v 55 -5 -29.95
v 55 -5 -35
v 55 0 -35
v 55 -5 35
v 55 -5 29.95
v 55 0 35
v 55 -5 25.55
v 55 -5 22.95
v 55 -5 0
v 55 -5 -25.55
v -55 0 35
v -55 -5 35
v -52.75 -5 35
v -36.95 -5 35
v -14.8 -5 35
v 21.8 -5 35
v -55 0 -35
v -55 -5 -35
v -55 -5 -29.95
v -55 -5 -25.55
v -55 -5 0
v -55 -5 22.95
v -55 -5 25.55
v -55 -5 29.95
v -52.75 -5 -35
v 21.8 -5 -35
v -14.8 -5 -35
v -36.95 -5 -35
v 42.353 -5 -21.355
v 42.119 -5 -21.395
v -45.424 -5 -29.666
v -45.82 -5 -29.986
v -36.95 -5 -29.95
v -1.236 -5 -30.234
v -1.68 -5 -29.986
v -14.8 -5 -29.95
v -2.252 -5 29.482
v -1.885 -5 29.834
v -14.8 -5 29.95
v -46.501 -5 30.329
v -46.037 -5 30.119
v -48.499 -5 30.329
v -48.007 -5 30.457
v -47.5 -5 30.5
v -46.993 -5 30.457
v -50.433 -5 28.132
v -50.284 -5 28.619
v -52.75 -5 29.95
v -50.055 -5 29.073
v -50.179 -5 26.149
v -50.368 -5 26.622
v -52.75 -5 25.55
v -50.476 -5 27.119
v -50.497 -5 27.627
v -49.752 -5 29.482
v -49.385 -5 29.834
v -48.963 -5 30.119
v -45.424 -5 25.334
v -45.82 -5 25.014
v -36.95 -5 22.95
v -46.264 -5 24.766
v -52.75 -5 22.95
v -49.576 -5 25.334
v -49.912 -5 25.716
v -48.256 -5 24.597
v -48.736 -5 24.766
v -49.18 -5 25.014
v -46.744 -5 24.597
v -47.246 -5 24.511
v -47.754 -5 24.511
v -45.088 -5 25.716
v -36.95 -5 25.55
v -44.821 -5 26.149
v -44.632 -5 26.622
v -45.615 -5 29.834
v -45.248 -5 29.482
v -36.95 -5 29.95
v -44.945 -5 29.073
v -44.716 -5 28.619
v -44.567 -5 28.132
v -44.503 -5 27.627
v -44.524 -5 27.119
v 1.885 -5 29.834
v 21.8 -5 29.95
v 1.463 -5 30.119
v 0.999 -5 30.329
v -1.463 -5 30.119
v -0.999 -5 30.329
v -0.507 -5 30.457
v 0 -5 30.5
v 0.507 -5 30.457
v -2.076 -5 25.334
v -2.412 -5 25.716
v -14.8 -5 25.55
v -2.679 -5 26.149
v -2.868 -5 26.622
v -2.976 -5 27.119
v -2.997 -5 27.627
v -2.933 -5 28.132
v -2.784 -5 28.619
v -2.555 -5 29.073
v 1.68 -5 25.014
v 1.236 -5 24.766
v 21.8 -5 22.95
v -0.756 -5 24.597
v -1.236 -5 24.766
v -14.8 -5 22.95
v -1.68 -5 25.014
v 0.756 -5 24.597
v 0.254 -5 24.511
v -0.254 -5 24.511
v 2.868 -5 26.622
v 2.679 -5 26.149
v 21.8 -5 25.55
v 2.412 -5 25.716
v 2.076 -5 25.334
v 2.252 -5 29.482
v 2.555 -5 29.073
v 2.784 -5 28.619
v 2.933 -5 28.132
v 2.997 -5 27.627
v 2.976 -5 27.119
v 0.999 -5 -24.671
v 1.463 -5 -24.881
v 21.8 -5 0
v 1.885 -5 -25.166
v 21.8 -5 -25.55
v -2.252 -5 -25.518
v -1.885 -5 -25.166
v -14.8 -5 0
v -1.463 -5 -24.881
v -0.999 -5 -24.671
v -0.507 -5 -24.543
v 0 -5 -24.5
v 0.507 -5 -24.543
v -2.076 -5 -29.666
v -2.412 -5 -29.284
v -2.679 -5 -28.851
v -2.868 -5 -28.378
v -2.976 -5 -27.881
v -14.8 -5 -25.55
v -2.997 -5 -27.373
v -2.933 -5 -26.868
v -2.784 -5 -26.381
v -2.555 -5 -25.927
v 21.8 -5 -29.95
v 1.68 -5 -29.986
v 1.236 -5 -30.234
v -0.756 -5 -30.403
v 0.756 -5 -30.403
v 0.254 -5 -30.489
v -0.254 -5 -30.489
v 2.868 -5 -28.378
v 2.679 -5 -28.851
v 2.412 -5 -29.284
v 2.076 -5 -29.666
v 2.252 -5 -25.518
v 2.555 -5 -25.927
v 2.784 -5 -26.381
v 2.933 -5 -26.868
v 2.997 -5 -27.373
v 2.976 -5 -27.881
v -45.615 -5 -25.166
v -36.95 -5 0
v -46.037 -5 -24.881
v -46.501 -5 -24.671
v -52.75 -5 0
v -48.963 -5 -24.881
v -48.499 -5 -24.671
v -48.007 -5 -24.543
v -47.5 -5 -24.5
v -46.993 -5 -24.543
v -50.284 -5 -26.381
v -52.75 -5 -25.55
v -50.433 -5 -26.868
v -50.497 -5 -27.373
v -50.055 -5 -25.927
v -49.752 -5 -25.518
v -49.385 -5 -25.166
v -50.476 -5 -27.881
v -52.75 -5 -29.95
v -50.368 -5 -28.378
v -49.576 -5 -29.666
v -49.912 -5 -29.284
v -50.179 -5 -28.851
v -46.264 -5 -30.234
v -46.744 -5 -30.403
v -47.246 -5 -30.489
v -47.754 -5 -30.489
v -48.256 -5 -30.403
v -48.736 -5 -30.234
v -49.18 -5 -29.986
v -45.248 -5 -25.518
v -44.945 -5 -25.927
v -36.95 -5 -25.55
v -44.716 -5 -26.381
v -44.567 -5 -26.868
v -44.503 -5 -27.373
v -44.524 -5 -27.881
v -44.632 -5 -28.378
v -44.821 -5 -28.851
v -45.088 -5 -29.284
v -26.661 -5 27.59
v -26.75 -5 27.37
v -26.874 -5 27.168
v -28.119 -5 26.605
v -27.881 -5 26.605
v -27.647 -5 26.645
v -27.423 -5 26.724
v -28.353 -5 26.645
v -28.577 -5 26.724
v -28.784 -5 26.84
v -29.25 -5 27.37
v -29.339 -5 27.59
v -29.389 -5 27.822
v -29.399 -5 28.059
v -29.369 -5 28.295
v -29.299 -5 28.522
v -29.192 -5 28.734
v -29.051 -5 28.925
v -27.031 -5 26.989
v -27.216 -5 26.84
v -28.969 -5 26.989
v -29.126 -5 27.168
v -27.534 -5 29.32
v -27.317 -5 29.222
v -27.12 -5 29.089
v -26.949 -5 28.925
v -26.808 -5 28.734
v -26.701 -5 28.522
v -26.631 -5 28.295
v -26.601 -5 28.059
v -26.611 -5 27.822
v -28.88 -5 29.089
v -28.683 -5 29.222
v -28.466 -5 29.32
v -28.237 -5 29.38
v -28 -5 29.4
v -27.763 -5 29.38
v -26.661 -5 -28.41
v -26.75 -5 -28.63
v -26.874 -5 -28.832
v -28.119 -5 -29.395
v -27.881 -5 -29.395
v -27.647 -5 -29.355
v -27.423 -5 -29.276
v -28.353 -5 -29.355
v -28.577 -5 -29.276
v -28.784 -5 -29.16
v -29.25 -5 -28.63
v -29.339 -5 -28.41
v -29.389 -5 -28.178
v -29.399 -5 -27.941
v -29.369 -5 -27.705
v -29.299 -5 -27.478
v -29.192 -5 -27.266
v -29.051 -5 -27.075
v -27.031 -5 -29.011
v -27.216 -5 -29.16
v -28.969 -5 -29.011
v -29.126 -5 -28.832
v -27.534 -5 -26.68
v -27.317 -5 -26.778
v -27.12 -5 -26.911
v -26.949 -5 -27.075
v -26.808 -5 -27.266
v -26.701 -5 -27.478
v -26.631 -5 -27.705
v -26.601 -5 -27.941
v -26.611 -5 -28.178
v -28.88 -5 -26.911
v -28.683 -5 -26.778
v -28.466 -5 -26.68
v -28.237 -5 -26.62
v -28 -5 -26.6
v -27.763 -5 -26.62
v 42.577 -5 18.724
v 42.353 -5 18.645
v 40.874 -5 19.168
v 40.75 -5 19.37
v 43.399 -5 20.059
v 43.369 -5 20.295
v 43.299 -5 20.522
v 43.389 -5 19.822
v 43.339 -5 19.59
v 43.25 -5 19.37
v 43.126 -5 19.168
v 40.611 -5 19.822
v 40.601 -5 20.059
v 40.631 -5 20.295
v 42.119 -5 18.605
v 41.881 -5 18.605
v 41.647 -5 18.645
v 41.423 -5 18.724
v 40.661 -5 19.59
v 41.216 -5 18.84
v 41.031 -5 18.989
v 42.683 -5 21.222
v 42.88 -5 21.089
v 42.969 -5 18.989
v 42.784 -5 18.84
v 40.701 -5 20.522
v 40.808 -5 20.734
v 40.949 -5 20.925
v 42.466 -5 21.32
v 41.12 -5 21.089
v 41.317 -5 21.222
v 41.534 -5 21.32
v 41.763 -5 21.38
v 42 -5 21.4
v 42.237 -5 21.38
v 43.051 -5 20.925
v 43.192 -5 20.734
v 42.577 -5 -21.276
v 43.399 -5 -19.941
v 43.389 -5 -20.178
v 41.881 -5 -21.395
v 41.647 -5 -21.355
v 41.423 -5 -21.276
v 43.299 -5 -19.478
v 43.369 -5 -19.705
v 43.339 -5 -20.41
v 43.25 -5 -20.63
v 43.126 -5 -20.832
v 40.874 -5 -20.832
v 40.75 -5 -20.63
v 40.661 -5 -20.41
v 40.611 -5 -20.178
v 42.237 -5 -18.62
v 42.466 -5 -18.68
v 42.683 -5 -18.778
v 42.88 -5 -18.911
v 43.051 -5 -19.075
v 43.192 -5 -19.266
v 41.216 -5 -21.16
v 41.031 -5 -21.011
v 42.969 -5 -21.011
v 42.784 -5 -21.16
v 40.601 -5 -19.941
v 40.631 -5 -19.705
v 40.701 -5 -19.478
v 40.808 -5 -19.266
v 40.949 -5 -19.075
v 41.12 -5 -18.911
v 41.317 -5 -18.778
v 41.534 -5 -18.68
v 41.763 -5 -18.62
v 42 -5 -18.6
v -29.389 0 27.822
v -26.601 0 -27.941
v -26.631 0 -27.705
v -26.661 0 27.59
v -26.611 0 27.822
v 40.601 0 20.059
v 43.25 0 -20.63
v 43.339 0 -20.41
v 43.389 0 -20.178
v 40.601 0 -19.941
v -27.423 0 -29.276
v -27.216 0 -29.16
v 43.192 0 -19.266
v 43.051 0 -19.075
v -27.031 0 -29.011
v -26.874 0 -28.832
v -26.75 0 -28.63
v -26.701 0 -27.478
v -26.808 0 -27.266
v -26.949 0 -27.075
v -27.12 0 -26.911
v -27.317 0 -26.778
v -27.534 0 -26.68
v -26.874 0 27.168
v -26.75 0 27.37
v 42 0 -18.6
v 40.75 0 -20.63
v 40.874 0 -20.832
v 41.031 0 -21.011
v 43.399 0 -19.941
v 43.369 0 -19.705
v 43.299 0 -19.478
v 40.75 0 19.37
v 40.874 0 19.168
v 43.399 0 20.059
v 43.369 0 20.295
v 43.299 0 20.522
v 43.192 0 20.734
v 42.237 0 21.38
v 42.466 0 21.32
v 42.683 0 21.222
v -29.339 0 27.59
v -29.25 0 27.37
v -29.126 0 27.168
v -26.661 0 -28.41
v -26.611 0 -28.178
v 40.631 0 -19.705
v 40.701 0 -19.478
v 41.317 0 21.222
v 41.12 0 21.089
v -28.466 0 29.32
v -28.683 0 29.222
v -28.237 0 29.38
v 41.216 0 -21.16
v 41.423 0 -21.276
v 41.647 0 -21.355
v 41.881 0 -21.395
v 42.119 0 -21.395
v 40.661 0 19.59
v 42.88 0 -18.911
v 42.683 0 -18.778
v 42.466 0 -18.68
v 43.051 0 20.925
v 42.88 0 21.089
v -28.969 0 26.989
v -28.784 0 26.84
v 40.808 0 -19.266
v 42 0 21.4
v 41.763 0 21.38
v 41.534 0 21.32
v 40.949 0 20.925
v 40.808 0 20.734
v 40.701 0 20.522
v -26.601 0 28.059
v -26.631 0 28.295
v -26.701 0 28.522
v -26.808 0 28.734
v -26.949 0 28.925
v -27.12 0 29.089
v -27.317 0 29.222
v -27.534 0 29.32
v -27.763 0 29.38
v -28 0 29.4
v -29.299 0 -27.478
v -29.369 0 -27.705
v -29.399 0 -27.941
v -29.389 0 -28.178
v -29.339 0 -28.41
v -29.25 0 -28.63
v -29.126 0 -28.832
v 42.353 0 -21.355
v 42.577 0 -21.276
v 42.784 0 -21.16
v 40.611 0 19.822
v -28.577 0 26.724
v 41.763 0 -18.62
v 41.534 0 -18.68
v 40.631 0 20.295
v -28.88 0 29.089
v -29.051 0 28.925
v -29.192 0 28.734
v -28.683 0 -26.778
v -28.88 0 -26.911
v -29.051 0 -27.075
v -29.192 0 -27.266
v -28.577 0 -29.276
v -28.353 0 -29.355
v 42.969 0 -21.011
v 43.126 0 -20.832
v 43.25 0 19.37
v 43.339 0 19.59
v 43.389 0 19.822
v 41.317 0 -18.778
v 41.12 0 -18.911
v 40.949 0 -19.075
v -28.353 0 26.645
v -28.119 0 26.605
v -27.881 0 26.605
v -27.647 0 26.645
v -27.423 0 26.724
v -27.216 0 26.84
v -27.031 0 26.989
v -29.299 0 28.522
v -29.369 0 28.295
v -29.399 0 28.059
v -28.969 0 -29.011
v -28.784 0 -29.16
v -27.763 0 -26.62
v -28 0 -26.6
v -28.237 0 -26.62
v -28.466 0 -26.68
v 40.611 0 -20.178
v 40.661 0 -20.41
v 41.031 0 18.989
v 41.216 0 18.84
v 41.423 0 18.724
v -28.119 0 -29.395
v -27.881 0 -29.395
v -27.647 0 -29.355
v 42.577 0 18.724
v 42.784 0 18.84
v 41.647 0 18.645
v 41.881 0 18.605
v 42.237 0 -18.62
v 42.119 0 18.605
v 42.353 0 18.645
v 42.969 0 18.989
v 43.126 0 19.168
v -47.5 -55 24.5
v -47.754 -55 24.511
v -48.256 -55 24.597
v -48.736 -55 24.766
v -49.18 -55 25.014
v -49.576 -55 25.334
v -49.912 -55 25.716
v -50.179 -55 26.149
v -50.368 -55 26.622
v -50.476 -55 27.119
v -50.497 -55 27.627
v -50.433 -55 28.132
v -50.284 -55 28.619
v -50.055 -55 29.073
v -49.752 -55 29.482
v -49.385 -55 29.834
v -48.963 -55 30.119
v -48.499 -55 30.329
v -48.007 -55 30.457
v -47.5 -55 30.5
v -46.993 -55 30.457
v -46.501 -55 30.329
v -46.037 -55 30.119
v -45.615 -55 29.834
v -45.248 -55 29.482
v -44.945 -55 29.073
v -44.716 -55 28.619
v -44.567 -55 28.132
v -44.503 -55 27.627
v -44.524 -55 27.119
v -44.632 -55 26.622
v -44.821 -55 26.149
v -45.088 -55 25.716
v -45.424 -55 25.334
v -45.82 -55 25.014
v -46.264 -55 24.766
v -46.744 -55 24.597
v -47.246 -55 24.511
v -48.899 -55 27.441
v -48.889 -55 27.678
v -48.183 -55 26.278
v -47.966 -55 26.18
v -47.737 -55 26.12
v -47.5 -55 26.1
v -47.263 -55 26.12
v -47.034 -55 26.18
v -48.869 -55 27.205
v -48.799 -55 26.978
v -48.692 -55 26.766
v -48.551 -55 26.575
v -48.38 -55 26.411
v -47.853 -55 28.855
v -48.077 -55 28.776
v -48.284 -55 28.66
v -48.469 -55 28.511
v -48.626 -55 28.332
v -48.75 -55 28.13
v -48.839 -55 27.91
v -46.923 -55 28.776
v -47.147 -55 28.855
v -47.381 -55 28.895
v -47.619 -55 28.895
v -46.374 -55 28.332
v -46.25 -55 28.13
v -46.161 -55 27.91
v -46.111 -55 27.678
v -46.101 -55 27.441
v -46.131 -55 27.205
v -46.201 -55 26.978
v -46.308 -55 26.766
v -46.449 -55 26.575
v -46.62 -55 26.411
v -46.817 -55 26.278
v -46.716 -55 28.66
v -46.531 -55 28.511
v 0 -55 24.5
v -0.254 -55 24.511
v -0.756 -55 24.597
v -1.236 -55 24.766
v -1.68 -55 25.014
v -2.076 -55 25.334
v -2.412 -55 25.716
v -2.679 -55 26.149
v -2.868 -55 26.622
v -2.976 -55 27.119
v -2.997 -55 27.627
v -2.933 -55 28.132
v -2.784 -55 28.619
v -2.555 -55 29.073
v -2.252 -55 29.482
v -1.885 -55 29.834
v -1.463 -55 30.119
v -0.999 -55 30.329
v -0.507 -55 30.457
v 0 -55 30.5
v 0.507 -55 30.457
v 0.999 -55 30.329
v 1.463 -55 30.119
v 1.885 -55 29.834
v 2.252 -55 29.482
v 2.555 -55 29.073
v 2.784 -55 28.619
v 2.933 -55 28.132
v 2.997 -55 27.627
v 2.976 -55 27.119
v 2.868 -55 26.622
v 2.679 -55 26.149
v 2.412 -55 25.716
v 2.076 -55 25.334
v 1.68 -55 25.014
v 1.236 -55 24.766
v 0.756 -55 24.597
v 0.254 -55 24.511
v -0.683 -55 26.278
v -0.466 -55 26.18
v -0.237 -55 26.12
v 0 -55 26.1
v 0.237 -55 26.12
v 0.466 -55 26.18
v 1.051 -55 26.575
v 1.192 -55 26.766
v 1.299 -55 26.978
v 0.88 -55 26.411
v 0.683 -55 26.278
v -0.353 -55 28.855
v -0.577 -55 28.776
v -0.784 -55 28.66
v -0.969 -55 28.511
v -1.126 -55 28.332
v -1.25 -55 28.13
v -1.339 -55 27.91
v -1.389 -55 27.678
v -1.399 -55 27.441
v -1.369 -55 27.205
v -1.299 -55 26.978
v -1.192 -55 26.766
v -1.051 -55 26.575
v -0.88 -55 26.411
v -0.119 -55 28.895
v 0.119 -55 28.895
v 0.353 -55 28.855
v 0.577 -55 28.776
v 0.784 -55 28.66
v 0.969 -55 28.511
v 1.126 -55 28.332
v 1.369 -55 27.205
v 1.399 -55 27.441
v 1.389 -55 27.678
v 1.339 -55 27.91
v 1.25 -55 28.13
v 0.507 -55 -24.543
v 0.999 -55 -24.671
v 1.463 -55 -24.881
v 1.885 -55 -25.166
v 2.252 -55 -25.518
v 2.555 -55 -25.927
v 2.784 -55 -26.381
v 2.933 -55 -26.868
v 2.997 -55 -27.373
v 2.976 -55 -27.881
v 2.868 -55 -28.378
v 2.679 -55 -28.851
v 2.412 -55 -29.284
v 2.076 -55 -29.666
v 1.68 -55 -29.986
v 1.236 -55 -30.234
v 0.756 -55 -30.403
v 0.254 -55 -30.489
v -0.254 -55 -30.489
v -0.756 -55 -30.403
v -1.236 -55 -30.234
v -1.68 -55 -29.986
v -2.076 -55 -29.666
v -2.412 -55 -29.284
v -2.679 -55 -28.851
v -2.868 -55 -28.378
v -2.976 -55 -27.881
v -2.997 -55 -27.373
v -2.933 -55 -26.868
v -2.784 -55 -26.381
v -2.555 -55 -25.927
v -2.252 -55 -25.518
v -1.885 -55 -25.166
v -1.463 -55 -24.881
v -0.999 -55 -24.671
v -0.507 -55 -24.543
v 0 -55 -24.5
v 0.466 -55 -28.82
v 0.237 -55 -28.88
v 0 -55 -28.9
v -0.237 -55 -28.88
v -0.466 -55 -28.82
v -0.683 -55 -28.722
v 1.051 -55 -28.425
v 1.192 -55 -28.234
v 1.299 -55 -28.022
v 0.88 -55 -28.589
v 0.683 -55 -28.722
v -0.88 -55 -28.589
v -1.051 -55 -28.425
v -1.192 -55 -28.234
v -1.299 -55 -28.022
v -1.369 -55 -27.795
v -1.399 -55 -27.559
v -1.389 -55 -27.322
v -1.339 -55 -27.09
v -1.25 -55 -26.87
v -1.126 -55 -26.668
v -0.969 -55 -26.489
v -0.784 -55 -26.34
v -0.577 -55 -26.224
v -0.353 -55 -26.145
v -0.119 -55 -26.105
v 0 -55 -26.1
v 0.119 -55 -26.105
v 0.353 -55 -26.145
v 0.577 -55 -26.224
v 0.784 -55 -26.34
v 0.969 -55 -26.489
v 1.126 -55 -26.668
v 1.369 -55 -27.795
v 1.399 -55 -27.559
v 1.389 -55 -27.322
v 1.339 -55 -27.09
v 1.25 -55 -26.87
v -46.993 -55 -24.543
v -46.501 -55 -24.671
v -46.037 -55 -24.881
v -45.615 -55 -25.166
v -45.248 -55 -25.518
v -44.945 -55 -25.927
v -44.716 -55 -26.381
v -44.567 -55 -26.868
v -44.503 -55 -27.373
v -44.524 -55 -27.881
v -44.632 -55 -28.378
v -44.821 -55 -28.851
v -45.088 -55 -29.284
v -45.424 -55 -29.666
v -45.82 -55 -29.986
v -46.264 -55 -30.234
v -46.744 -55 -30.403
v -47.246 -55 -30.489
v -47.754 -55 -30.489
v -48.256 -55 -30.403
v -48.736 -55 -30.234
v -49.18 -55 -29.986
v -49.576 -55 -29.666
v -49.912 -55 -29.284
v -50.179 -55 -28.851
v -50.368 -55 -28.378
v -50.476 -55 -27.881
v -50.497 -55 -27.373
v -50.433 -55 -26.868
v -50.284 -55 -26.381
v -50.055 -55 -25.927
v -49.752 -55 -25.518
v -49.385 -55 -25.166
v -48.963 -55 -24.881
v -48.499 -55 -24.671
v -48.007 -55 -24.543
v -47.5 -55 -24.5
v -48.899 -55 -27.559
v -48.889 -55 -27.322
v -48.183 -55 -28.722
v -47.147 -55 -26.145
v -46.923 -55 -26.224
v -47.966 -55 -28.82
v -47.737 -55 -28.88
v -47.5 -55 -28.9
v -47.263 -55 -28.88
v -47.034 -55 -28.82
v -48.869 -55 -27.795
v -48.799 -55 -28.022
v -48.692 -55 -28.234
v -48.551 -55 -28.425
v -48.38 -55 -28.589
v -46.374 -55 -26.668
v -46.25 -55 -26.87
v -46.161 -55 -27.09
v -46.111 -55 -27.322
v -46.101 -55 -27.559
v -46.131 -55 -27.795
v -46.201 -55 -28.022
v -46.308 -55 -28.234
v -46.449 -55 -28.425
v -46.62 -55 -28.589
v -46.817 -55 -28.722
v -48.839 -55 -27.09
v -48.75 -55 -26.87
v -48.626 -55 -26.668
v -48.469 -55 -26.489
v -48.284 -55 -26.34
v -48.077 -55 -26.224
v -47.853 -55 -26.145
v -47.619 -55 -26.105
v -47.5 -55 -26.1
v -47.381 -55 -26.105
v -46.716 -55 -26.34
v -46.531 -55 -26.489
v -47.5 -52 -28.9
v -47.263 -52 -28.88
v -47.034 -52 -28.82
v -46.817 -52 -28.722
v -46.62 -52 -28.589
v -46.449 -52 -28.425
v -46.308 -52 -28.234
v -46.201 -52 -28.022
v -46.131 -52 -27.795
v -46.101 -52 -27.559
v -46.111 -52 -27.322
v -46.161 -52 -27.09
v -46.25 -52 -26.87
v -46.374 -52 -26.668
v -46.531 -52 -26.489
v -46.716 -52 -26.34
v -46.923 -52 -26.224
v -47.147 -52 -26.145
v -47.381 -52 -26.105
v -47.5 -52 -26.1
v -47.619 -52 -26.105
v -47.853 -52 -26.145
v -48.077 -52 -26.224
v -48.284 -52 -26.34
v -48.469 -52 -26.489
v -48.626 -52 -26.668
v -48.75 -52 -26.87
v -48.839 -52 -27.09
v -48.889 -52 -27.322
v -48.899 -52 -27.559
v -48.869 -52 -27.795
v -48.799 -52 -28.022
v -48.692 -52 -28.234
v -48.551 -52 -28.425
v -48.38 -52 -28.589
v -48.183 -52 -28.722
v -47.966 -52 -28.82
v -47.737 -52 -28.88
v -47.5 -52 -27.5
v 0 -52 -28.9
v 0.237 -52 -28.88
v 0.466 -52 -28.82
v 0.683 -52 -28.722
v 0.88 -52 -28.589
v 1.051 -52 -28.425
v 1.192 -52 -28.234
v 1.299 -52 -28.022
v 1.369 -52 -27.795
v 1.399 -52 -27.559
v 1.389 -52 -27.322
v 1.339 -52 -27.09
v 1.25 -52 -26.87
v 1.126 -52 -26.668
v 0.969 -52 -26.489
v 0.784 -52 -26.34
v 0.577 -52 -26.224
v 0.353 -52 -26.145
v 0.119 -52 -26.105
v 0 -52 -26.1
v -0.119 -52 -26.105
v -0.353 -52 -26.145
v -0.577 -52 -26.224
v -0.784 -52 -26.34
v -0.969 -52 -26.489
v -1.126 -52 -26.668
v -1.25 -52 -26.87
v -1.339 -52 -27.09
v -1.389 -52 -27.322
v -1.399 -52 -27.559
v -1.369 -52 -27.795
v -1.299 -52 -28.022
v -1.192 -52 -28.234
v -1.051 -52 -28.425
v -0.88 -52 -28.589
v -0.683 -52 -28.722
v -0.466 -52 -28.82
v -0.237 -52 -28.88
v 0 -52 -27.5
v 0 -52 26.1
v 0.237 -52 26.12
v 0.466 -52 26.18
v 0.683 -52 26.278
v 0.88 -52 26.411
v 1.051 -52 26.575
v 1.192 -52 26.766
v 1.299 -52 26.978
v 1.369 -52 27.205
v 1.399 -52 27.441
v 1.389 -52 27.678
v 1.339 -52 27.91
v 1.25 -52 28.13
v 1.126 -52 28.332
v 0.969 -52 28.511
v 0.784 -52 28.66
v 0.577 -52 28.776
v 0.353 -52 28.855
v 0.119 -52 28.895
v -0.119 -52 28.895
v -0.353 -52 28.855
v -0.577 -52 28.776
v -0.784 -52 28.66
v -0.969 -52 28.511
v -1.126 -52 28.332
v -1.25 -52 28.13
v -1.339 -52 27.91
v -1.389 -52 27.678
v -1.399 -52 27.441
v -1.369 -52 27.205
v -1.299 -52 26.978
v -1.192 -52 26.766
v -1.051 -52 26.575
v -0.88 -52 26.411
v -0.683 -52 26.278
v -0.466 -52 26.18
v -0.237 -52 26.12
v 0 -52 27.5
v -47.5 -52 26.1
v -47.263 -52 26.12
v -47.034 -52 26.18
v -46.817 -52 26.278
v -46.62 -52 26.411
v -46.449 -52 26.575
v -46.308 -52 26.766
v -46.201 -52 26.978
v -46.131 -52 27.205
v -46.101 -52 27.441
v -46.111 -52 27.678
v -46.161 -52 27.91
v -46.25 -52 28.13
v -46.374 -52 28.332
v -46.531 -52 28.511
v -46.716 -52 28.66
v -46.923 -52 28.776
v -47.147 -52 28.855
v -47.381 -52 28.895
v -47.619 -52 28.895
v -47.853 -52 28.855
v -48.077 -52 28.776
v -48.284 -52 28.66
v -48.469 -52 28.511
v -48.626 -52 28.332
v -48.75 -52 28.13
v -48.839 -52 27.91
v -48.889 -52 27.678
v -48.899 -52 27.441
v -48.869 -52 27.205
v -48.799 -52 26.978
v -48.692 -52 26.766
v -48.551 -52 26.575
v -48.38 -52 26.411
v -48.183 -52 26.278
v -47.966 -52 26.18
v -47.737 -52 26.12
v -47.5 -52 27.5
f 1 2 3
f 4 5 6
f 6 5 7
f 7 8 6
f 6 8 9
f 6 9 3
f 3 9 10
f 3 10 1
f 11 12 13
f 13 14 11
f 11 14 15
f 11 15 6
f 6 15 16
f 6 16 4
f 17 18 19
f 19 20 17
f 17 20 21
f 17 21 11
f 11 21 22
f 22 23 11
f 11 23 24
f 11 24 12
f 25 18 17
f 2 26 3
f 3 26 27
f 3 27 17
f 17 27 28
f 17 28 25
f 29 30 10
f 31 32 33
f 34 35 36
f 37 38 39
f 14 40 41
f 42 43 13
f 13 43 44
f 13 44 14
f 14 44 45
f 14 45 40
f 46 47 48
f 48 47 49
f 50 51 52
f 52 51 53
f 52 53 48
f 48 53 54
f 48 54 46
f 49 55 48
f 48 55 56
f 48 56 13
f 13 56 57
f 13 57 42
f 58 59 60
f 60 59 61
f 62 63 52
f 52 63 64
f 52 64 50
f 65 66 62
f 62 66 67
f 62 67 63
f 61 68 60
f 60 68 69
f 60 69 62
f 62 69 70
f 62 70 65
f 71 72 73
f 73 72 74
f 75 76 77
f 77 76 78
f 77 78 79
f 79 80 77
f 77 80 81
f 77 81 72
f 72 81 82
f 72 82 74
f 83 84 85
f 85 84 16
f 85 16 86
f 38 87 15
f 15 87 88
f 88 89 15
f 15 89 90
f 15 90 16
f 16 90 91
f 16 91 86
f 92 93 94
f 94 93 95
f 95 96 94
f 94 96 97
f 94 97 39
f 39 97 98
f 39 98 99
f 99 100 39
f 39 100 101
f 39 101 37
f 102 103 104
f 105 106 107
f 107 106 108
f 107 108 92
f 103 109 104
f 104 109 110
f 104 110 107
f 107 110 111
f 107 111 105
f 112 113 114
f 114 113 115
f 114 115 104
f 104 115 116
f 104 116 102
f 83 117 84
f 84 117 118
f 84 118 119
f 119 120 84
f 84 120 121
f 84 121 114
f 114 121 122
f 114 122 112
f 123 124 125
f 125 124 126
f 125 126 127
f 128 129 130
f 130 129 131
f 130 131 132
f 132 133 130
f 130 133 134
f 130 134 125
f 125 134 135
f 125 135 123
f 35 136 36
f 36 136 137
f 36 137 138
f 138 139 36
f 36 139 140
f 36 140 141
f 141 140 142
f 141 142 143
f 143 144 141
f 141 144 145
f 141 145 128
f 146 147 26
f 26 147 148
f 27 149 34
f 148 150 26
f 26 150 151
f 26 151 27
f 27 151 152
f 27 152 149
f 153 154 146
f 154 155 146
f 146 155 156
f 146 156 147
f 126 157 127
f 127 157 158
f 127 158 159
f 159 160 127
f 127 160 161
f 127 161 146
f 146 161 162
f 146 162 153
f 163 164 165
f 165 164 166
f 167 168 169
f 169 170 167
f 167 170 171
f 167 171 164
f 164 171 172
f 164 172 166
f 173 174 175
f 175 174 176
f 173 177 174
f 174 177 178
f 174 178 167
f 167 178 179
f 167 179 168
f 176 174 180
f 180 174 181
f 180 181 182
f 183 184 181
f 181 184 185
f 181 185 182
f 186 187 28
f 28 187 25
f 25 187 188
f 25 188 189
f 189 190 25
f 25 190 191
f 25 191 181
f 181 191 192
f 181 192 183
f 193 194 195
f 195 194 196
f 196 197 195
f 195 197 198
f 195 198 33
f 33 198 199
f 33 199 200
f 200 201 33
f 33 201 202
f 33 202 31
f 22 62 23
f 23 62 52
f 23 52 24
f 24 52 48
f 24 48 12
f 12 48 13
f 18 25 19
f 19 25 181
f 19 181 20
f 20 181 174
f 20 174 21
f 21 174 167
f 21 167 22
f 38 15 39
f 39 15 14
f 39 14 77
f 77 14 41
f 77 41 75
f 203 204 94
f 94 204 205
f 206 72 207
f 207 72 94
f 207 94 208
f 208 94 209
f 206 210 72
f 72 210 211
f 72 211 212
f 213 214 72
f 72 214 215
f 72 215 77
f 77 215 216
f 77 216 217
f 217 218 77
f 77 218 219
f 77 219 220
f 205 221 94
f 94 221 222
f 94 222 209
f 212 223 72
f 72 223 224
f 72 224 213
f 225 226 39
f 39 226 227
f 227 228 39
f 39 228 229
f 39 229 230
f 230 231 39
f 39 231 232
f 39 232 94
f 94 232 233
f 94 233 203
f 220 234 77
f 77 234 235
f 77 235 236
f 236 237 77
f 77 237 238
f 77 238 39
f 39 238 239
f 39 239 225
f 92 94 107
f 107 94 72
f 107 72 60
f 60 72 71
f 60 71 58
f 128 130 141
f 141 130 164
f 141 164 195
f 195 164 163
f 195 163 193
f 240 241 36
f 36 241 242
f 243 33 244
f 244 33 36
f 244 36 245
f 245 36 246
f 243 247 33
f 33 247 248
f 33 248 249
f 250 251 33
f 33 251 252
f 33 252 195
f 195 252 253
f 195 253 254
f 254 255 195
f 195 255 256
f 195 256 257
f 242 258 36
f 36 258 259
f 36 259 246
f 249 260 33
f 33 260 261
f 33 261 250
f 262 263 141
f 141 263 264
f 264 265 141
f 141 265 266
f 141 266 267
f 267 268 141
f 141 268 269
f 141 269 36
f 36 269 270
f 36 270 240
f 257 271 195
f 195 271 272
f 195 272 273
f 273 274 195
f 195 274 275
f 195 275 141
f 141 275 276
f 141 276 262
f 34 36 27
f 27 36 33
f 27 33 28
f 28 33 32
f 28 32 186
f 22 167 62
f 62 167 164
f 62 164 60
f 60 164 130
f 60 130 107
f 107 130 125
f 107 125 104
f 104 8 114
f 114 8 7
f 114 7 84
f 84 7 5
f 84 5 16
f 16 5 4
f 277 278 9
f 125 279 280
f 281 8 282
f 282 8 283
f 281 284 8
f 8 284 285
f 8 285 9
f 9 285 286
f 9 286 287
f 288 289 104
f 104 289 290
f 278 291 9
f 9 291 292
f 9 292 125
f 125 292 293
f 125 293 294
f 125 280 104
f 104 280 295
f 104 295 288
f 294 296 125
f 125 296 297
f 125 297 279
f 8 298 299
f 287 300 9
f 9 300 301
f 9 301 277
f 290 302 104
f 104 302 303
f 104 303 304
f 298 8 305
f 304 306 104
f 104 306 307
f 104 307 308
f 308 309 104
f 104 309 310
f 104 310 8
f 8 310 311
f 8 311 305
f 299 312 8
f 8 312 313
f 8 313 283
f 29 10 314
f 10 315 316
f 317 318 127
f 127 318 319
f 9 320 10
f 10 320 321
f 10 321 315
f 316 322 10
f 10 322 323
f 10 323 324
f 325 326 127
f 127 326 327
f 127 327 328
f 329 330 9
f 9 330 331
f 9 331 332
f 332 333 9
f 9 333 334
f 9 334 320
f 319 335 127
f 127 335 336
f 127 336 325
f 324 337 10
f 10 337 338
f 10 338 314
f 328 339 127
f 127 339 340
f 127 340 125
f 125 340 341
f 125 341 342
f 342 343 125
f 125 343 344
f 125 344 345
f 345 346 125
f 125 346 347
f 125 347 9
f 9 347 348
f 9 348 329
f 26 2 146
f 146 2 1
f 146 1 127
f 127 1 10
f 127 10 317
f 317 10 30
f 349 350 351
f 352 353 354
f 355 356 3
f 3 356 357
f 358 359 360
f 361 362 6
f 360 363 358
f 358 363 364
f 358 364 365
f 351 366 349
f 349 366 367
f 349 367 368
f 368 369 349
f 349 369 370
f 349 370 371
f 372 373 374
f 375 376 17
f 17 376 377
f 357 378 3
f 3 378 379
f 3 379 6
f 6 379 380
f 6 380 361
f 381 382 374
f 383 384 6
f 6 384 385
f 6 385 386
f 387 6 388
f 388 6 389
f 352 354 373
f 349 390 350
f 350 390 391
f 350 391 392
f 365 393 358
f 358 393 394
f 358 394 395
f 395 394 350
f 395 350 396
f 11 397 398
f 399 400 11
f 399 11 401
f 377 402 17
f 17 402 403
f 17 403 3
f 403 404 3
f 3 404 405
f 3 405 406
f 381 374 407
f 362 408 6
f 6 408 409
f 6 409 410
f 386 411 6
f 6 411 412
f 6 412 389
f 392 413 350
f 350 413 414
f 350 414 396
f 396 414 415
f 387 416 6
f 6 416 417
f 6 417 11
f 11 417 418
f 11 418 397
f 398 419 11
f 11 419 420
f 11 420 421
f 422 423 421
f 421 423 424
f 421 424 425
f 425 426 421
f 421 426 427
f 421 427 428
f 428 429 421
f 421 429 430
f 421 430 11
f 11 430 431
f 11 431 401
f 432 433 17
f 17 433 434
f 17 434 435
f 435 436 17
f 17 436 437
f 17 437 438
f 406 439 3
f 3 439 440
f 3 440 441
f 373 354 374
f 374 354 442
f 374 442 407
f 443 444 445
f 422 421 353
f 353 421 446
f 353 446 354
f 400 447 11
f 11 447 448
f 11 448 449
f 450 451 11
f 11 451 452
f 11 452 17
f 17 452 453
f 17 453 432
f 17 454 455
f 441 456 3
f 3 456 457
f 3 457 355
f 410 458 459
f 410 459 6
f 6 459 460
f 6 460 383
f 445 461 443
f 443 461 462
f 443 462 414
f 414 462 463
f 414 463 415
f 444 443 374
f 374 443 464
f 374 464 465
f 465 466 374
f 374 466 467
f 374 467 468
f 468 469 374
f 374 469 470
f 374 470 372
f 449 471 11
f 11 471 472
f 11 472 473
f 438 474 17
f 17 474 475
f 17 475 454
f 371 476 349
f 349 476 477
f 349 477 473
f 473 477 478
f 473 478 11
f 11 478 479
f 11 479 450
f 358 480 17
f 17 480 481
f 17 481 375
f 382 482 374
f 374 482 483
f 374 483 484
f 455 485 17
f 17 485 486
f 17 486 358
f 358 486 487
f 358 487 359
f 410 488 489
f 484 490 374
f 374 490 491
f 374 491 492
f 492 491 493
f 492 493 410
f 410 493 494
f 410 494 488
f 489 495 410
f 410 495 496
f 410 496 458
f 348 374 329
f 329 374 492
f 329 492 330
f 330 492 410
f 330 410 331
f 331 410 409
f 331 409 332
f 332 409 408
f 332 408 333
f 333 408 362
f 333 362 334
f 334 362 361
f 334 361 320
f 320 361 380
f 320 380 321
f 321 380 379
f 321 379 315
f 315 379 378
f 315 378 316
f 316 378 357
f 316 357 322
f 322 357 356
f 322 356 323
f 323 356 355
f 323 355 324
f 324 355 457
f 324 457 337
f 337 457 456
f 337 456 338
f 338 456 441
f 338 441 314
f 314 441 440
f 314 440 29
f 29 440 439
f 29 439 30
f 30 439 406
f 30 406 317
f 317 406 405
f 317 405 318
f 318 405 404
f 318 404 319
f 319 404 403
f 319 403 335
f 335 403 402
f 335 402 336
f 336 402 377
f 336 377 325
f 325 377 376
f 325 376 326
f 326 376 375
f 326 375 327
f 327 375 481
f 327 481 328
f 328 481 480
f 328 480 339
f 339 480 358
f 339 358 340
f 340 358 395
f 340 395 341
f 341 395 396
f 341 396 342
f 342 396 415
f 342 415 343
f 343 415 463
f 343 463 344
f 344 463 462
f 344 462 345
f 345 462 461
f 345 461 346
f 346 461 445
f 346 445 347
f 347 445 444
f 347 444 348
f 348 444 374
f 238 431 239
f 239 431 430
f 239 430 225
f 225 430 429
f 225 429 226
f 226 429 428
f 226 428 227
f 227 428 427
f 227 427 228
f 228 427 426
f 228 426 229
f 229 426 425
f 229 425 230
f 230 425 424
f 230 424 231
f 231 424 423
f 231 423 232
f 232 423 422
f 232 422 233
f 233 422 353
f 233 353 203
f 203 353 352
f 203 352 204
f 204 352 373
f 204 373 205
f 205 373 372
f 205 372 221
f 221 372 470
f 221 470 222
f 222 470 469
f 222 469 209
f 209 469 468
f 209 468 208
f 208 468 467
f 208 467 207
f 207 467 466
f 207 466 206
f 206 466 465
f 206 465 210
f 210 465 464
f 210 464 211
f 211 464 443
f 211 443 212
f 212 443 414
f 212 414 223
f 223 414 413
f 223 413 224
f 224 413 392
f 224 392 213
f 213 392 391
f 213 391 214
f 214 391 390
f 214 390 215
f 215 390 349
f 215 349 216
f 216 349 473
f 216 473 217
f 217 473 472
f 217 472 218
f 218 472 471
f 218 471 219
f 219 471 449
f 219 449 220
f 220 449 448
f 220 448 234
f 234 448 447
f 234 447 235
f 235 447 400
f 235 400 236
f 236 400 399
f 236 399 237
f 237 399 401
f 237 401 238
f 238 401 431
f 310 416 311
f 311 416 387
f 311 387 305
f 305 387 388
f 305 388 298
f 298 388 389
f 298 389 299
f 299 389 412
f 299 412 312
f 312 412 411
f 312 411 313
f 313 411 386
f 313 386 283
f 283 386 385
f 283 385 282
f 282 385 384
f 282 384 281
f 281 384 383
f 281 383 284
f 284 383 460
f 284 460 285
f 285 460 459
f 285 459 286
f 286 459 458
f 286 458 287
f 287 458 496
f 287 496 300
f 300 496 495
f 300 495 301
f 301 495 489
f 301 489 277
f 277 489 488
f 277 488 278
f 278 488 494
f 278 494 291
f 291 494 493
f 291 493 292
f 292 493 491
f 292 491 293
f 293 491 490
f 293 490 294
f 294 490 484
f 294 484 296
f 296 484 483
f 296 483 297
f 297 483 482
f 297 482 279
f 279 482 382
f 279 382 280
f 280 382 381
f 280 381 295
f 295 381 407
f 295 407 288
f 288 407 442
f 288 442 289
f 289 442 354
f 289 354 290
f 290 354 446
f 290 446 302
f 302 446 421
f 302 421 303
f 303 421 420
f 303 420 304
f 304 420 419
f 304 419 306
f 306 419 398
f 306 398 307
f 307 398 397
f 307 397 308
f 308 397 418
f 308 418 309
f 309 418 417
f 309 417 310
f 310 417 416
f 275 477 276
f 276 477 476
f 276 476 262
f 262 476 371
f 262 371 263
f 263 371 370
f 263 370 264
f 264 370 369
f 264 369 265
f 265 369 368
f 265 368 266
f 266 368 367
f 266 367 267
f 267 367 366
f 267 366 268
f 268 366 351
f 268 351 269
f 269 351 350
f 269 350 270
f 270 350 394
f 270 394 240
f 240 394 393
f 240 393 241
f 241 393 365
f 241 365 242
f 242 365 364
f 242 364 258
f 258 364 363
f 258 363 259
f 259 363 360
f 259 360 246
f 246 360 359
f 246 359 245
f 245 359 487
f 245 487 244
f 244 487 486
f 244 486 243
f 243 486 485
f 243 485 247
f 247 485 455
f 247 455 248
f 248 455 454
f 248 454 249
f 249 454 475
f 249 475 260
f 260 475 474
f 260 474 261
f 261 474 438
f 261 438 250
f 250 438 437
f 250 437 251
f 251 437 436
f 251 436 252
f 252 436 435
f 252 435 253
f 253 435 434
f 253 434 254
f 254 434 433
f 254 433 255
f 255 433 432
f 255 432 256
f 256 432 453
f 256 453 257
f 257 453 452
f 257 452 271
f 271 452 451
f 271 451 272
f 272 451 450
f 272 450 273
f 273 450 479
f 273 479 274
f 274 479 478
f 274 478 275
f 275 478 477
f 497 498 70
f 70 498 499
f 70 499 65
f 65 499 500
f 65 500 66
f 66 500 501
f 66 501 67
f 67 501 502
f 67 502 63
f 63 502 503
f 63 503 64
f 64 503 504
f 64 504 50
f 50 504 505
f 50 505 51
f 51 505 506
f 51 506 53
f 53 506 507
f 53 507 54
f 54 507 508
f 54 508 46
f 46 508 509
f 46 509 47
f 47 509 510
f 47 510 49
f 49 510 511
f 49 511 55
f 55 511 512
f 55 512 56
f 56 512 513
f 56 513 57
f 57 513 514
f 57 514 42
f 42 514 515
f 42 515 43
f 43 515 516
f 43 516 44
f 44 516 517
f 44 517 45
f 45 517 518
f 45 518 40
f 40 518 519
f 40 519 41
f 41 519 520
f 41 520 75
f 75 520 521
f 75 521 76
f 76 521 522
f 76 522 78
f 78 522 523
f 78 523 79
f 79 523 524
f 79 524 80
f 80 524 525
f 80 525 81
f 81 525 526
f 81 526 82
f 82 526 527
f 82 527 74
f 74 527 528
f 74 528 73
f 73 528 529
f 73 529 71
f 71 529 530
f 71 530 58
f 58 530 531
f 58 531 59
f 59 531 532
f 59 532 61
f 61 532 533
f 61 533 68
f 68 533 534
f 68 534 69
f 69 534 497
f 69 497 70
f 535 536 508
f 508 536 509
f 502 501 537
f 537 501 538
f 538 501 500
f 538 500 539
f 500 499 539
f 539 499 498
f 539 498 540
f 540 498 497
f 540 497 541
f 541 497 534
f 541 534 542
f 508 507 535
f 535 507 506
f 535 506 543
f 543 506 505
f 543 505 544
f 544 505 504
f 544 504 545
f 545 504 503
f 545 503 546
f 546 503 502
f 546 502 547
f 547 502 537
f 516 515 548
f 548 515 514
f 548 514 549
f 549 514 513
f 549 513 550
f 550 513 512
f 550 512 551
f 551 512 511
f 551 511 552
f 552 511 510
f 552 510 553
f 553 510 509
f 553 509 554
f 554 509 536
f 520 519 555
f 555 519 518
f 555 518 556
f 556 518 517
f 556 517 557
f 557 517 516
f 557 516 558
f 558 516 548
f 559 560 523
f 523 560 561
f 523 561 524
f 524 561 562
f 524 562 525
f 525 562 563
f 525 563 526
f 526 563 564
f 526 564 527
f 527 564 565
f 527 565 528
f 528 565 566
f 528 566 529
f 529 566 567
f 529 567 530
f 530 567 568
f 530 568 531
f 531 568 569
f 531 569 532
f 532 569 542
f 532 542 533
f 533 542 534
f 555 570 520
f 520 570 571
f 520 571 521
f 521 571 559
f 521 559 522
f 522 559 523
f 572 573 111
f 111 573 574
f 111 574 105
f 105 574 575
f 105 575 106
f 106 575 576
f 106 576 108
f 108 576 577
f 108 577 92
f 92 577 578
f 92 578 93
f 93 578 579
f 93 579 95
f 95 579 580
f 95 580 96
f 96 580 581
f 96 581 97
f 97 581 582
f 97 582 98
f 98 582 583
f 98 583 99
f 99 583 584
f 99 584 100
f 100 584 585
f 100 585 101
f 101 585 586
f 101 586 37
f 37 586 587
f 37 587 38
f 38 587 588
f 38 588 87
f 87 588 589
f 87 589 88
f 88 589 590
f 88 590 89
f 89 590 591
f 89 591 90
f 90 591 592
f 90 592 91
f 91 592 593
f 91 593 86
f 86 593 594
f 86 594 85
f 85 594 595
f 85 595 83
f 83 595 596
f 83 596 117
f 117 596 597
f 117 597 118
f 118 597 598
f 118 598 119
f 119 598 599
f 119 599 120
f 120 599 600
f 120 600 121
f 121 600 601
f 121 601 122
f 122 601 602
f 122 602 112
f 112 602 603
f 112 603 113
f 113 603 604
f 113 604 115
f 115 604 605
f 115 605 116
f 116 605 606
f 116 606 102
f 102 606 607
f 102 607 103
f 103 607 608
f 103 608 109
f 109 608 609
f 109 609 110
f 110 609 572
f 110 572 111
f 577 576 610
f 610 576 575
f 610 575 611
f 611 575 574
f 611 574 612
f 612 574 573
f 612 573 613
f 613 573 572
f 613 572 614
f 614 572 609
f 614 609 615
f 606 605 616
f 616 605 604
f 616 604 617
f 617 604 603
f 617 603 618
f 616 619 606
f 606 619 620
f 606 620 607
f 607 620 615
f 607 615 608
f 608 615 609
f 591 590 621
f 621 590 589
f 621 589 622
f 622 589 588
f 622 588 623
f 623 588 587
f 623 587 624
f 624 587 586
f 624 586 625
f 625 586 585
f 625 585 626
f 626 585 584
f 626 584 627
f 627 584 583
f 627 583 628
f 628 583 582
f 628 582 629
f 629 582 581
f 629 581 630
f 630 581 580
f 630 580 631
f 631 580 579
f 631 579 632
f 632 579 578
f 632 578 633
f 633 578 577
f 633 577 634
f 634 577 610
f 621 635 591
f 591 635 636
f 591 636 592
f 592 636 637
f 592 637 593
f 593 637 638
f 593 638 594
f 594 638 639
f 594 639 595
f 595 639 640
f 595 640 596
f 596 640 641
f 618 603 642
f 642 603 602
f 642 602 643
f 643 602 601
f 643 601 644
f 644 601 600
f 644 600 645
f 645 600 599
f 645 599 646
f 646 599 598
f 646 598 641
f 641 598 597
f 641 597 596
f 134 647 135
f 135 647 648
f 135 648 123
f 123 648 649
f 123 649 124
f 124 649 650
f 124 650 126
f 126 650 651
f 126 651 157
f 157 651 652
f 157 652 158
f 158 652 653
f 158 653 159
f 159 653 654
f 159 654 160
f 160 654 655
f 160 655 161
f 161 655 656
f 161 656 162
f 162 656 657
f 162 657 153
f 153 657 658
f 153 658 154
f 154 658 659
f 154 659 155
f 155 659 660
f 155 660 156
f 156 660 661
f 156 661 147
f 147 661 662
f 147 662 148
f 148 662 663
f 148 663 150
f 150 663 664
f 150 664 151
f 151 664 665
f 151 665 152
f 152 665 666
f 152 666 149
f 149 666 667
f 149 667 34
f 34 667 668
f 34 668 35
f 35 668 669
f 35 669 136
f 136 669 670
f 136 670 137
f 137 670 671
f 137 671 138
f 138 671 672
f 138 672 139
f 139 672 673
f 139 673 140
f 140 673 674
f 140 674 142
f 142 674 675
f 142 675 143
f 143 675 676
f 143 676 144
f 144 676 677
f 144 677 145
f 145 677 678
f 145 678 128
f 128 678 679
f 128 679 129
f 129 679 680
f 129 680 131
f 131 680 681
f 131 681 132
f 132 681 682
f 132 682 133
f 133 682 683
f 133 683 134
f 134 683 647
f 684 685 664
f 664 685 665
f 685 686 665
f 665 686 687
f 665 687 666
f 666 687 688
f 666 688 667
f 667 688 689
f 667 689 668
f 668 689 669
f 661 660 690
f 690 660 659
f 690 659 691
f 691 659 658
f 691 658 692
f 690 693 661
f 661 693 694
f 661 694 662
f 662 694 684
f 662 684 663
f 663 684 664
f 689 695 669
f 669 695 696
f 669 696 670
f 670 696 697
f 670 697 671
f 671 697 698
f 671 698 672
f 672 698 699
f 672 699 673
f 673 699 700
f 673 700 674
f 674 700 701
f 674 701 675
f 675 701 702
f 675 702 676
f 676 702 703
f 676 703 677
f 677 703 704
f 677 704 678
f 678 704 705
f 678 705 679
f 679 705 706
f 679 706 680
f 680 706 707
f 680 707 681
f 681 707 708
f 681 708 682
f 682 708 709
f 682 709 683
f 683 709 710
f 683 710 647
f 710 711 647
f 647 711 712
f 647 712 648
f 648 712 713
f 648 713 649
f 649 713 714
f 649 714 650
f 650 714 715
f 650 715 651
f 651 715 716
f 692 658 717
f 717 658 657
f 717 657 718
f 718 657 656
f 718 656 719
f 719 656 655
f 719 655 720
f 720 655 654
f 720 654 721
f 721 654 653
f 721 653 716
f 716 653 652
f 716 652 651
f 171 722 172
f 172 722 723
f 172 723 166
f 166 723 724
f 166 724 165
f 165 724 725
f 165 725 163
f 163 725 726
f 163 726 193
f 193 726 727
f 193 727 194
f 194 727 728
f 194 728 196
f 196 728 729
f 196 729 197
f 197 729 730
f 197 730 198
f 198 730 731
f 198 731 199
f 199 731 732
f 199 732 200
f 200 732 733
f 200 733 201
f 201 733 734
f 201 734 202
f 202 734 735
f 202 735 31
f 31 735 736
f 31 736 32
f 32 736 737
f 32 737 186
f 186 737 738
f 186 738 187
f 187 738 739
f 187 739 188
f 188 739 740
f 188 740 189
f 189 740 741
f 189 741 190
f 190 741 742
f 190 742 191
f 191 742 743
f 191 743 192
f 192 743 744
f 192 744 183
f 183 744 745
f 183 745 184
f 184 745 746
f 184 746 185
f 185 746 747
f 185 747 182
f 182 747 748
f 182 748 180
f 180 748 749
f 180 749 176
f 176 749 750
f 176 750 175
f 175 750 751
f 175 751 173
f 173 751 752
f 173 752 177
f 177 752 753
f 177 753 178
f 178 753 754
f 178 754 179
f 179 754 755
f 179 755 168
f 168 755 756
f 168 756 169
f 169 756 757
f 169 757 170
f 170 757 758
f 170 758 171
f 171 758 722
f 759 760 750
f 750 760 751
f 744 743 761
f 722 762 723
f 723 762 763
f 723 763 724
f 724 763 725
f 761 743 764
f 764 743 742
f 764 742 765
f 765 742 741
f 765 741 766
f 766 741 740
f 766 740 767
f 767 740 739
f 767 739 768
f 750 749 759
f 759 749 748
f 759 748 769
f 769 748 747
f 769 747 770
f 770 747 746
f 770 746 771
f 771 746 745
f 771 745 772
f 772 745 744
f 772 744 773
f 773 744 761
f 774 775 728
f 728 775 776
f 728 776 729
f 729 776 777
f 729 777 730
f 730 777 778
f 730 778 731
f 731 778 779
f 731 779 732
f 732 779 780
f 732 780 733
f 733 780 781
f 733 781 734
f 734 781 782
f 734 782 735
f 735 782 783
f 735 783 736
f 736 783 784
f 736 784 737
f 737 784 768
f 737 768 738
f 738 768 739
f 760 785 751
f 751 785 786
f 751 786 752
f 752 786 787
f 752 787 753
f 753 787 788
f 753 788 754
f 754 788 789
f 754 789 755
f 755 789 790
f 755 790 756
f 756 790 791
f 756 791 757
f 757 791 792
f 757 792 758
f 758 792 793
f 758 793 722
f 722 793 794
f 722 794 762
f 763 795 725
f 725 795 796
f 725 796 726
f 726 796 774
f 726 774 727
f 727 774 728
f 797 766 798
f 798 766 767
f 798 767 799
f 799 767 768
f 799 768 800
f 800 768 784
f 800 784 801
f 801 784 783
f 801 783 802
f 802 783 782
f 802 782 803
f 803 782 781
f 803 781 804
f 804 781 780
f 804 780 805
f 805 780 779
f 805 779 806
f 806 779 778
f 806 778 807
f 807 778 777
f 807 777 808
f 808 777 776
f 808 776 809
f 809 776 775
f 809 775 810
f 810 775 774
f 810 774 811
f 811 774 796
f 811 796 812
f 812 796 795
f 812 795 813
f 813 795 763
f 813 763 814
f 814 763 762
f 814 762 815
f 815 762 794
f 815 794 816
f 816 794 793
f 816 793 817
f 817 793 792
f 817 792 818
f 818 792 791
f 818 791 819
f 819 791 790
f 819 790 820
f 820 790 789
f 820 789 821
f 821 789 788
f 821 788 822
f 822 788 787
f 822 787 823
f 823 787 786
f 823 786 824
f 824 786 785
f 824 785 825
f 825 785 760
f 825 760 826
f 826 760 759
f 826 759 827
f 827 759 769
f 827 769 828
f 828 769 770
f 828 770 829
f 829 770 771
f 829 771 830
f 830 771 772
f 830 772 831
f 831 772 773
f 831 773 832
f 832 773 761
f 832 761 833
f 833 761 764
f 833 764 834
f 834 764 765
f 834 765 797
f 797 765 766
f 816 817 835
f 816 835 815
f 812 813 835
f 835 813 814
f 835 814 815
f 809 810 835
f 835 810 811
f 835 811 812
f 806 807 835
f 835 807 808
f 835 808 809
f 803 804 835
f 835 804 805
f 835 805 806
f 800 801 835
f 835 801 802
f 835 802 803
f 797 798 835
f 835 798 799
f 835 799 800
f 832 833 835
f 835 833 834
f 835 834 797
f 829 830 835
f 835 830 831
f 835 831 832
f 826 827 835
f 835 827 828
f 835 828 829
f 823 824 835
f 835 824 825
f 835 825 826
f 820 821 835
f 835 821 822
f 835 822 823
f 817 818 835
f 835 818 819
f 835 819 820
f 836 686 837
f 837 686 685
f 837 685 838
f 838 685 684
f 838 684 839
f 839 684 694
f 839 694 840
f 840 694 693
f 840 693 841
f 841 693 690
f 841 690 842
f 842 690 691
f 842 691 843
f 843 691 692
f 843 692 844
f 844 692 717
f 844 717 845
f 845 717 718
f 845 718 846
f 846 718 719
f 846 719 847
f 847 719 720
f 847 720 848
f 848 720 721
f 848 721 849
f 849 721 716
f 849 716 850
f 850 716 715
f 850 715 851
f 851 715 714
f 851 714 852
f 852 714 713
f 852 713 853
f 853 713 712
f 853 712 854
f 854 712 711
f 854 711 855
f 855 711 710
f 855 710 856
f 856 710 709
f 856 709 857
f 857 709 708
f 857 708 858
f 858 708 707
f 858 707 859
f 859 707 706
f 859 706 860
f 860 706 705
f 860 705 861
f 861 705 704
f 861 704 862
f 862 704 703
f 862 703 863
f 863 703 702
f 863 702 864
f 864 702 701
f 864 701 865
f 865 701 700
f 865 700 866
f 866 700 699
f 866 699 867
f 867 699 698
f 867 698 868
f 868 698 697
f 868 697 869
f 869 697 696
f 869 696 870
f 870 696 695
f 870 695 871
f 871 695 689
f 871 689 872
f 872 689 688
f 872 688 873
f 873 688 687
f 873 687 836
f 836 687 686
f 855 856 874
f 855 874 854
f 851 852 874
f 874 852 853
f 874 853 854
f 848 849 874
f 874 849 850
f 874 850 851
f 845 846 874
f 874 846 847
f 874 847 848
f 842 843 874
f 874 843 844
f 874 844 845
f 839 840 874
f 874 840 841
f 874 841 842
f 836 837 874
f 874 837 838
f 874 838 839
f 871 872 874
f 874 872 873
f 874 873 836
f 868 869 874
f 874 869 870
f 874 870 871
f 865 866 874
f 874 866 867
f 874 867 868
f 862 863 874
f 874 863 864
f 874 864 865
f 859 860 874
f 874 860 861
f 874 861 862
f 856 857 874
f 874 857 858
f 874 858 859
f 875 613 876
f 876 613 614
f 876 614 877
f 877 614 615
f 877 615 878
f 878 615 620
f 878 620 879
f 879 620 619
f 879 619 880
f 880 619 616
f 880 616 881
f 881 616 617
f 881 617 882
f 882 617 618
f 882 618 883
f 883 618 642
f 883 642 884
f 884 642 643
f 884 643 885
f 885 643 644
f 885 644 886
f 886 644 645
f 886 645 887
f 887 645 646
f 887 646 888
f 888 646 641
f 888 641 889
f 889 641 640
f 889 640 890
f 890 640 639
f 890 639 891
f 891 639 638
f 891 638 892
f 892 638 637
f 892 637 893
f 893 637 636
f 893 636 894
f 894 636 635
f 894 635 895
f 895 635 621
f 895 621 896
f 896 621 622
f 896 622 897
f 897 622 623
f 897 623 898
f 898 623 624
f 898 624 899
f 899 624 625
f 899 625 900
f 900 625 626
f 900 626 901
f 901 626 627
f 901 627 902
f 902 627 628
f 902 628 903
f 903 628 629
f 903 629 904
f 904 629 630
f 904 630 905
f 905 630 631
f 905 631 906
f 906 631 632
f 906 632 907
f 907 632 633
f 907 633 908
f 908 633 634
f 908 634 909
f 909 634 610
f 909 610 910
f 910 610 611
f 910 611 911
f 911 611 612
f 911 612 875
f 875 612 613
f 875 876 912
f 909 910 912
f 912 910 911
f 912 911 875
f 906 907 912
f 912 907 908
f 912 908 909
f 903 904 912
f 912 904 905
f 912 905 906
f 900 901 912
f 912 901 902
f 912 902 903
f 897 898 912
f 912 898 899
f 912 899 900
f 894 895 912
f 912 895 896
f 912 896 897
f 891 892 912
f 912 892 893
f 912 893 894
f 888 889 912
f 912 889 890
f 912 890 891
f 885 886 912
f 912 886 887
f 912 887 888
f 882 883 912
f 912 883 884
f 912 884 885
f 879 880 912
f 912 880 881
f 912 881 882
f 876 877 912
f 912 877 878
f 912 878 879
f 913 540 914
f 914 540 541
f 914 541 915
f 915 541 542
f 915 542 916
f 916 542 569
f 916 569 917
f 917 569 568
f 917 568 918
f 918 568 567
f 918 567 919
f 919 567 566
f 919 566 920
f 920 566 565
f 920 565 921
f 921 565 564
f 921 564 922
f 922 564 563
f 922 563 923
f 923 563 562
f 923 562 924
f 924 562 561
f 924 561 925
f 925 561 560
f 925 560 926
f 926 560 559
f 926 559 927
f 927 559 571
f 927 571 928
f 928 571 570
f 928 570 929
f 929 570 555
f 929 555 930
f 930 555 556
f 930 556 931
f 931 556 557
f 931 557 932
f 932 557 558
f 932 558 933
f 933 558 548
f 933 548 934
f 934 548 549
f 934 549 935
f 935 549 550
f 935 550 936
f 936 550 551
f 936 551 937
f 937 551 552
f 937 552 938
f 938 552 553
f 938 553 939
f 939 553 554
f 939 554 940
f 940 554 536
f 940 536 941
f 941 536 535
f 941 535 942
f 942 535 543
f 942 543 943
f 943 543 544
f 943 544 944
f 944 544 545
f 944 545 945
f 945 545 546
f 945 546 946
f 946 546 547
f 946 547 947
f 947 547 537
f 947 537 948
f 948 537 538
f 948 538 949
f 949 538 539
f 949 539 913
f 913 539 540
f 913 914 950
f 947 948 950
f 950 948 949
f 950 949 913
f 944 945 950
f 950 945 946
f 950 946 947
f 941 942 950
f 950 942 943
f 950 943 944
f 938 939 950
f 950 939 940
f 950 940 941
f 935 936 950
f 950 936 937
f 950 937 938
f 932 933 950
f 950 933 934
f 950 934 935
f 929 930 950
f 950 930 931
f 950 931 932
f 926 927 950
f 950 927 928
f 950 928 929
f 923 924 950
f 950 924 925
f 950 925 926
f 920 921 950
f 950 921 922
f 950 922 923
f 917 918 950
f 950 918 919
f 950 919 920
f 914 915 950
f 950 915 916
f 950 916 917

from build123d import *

# Parameters (mm, degrees)
SKETCH1_W           = 110
SKETCH1_H           = 70
BOSS_EXTRUDE2_DEPTH = 5
SKETCH2_R           = 1.4
CUT_EXTRUDE1_DEPTH  = 5
SKETCH4_R           = 3
BOSS_EXTRUDE3_DEPTH = 50
SKETCH5_R           = 1.4
CUT_EXTRUDE2_DEPTH  = 3


with BuildPart() as part:
    # Sketch1 → Boss-Extrude2 (new body)
    with BuildSketch(Plane(origin=(0, 0, 0), x_dir=(1, 0, 0), z_dir=(0, 1, 0))):
        Rectangle(SKETCH1_W, SKETCH1_H)
    extrude(amount=-BOSS_EXTRUDE2_DEPTH)

    # Sketch2 → Cut-Extrude1 (cut)
    with BuildSketch(Plane(origin=(0, 0, 0), x_dir=(1, 0, 0), z_dir=(0, 1, 0))):
        with Locations(Location((-28, 28, 0), (0, 0, 270))):
            Circle(SKETCH2_R)
        with Locations(Location((42, 20, 0), (0, 0, 270))):
            Circle(SKETCH2_R)
        with Locations(Location((-28, -28, 0), (0, 0, 270))):
            Circle(SKETCH2_R)
        with Locations(Location((42, -20, 0), (0, 0, 270))):
            Circle(SKETCH2_R)
    extrude(amount=-CUT_EXTRUDE1_DEPTH, mode=Mode.SUBTRACT)

    # Sketch4 → Boss-Extrude3 (add)
    with BuildSketch(Plane.XZ.offset(5)):
        with Locations(Location((-47.5, 27.5, 0), (0, 0, 90))):
            Circle(SKETCH4_R)
        with Locations(Location((0, 27.5, 0), (0, 0, 90))):
            Circle(SKETCH4_R)
        with Locations(Location((0, -27.5, 0), (0, 0, 90))):
            Circle(SKETCH4_R)
        with Locations(Location((-47.5, -27.5, 0), (0, 0, 90))):
            Circle(SKETCH4_R)
    extrude(amount=BOSS_EXTRUDE3_DEPTH)

    # Sketch5 → Cut-Extrude2 (cut)
    with BuildSketch(Plane.XZ.offset(55)):
        with Locations(Location((-47.5, 27.5, 0), (0, 0, 270))):
            Circle(SKETCH5_R)
        with Locations(Location((0, 27.5, 0), (0, 0, 270))):
            Circle(SKETCH5_R)
        with Locations(Location((0, -27.5, 0), (0, 0, 90))):
            Circle(SKETCH5_R)
        with Locations(Location((-47.5, -27.5, 0), (0, 0, 90))):
            Circle(SKETCH5_R)
    extrude(amount=-CUT_EXTRUDE2_DEPTH, mode=Mode.SUBTRACT)


solid = part.part
